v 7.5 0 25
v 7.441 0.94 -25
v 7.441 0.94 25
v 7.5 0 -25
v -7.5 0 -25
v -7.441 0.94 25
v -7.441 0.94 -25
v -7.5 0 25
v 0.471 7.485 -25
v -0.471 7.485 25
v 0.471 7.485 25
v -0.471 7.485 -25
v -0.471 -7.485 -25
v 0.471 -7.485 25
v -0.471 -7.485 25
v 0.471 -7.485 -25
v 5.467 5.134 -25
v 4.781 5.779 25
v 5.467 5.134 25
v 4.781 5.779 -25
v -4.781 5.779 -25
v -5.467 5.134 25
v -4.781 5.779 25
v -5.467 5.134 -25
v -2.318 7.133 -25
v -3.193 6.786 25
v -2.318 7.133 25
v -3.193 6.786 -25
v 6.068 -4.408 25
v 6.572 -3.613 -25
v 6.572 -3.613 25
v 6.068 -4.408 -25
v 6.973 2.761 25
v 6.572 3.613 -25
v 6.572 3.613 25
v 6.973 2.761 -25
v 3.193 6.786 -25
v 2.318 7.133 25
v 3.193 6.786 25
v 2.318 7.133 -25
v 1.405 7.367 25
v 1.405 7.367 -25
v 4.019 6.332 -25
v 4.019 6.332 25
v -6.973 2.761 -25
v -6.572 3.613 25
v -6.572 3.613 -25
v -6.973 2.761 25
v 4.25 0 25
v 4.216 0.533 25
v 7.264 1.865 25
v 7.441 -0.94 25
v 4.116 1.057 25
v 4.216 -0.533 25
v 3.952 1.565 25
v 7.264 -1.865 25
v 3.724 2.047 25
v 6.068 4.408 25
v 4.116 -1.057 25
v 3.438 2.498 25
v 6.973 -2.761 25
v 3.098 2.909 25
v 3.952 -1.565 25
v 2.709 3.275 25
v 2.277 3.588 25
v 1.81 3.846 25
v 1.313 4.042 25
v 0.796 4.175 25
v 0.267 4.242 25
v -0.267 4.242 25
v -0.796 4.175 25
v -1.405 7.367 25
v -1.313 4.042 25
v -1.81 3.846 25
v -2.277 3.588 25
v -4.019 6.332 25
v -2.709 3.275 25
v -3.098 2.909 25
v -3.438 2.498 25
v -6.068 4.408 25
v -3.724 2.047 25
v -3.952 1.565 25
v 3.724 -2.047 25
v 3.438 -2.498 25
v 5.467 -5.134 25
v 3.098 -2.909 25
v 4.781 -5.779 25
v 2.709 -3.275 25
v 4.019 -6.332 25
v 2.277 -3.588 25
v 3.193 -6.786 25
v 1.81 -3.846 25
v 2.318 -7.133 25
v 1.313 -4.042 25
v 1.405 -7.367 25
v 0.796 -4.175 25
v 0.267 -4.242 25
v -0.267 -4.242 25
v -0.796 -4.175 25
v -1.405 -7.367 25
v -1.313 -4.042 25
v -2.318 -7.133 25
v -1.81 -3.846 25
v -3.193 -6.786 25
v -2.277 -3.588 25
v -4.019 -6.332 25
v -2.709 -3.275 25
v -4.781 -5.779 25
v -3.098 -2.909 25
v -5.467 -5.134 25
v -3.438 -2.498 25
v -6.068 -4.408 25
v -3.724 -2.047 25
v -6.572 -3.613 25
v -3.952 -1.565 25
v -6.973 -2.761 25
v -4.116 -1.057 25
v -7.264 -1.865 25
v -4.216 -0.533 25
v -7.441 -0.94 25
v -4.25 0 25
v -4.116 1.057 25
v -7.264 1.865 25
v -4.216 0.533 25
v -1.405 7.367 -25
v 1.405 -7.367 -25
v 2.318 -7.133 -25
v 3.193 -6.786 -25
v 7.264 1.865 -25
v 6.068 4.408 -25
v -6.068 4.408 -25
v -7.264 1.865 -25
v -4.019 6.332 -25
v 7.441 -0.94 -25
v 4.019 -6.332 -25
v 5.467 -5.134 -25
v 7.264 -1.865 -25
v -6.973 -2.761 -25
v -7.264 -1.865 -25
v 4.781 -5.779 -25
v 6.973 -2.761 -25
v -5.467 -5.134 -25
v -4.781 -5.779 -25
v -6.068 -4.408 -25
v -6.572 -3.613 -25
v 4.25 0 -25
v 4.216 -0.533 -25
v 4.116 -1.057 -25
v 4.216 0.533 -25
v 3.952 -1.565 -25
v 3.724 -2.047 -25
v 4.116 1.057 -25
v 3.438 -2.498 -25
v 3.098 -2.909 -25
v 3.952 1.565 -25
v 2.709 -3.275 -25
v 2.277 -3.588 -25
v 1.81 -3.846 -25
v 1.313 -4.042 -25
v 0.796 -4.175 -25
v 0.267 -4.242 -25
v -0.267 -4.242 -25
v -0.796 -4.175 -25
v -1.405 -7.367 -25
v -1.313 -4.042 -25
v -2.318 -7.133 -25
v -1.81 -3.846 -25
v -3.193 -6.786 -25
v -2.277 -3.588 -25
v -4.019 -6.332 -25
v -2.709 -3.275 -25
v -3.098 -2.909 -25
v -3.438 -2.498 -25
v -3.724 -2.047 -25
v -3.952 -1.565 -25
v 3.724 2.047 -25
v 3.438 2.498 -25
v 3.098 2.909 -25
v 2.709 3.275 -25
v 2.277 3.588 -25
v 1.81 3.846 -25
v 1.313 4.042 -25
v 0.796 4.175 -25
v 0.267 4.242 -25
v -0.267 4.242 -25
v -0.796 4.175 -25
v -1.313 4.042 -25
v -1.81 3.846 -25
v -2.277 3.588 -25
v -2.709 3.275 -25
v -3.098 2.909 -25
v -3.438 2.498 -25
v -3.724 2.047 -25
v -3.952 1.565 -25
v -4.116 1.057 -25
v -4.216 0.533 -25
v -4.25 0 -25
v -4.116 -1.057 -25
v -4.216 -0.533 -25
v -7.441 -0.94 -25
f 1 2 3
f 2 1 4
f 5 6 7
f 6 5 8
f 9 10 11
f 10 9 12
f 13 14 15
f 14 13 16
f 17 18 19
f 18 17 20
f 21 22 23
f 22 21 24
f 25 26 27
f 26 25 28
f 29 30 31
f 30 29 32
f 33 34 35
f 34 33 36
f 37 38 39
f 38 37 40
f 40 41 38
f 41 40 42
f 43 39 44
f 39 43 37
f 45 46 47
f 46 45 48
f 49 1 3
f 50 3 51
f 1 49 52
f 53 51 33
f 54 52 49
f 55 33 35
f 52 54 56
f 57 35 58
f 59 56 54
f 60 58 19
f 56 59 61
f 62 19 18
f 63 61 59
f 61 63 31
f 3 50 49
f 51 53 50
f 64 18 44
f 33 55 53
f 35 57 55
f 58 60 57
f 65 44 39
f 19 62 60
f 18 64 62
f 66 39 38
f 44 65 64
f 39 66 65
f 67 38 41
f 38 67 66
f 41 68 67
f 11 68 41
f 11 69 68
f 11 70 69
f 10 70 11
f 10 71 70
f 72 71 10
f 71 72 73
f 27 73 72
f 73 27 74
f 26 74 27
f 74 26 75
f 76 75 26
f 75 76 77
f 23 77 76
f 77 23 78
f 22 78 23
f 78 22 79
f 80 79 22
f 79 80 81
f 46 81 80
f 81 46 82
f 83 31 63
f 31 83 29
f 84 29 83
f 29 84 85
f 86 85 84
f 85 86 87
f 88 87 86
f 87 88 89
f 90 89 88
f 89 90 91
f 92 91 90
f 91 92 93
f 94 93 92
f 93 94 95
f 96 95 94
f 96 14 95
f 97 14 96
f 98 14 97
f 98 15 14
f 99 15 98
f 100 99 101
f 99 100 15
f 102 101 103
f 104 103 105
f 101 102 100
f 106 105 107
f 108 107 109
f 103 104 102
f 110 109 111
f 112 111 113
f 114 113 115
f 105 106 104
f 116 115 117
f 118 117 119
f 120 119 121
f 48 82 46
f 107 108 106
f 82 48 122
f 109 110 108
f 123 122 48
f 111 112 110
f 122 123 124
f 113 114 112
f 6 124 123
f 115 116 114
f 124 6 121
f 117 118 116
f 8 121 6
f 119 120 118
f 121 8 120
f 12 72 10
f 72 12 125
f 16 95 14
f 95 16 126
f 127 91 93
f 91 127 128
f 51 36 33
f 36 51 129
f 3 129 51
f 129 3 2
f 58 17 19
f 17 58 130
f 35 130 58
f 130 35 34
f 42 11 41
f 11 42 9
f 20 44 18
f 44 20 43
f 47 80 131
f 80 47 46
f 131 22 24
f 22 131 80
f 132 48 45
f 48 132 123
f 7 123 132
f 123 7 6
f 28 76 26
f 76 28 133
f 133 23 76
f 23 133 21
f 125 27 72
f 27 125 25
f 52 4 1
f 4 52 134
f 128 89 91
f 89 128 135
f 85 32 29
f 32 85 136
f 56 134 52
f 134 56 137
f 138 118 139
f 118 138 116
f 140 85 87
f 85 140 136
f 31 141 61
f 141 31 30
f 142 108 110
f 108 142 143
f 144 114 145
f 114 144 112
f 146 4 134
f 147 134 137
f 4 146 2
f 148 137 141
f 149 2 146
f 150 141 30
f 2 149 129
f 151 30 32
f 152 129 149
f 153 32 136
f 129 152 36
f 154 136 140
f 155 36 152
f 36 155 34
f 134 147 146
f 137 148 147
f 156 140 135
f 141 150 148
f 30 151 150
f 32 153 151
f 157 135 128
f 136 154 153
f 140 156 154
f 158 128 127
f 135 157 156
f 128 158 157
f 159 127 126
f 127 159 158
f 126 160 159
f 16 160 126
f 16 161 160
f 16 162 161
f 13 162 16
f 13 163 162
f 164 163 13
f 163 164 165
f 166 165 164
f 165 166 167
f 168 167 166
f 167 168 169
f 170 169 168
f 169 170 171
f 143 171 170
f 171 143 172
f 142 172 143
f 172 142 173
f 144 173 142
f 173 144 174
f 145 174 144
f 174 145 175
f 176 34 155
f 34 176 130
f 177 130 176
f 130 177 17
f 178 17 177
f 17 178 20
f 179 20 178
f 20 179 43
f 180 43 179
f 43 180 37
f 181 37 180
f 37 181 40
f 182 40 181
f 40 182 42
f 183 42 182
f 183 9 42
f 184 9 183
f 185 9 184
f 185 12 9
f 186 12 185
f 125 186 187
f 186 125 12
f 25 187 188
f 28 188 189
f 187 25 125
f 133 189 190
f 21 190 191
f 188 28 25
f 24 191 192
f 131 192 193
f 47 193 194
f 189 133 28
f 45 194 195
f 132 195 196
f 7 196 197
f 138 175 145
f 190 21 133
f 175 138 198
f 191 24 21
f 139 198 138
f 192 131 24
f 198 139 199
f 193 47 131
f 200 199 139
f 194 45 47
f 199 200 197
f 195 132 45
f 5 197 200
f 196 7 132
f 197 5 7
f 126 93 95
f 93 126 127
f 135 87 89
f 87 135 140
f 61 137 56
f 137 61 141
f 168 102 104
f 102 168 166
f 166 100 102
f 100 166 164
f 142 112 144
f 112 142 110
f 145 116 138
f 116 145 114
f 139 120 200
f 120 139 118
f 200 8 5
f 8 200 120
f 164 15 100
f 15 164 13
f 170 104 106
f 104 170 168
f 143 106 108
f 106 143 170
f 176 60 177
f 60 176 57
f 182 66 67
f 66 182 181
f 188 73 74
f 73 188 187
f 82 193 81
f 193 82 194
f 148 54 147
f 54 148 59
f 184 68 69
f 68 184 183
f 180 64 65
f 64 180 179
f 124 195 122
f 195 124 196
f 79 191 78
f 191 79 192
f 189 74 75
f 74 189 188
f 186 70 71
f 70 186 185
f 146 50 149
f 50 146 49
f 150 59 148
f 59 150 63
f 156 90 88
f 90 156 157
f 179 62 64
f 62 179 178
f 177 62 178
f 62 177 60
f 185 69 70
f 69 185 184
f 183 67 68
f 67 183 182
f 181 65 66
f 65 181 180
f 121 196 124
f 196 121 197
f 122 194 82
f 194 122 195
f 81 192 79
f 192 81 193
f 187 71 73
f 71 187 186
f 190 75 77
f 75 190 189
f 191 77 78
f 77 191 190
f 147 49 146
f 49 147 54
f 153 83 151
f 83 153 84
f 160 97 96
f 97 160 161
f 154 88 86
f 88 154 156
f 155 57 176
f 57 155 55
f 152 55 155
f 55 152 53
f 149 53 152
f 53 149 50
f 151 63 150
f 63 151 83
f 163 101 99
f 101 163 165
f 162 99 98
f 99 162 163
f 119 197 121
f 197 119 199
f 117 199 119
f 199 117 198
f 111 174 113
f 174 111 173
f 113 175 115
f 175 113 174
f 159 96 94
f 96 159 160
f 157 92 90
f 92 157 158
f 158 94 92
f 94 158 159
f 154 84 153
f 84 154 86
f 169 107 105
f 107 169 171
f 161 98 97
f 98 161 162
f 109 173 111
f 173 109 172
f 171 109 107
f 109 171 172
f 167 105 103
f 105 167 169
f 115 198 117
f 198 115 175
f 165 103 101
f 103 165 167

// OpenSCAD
$fn = 50;


difference() {
	union() {
		translate(v = [0, 0, -25.0000000000]) {
			cylinder(h = 50, r = 7.5000000000);
		}
	}
	union() {
		translate(v = [0, 0, -100.0000000000]) {
			cylinder(h = 200, r = 4.2500000000);
		}
	}
}
